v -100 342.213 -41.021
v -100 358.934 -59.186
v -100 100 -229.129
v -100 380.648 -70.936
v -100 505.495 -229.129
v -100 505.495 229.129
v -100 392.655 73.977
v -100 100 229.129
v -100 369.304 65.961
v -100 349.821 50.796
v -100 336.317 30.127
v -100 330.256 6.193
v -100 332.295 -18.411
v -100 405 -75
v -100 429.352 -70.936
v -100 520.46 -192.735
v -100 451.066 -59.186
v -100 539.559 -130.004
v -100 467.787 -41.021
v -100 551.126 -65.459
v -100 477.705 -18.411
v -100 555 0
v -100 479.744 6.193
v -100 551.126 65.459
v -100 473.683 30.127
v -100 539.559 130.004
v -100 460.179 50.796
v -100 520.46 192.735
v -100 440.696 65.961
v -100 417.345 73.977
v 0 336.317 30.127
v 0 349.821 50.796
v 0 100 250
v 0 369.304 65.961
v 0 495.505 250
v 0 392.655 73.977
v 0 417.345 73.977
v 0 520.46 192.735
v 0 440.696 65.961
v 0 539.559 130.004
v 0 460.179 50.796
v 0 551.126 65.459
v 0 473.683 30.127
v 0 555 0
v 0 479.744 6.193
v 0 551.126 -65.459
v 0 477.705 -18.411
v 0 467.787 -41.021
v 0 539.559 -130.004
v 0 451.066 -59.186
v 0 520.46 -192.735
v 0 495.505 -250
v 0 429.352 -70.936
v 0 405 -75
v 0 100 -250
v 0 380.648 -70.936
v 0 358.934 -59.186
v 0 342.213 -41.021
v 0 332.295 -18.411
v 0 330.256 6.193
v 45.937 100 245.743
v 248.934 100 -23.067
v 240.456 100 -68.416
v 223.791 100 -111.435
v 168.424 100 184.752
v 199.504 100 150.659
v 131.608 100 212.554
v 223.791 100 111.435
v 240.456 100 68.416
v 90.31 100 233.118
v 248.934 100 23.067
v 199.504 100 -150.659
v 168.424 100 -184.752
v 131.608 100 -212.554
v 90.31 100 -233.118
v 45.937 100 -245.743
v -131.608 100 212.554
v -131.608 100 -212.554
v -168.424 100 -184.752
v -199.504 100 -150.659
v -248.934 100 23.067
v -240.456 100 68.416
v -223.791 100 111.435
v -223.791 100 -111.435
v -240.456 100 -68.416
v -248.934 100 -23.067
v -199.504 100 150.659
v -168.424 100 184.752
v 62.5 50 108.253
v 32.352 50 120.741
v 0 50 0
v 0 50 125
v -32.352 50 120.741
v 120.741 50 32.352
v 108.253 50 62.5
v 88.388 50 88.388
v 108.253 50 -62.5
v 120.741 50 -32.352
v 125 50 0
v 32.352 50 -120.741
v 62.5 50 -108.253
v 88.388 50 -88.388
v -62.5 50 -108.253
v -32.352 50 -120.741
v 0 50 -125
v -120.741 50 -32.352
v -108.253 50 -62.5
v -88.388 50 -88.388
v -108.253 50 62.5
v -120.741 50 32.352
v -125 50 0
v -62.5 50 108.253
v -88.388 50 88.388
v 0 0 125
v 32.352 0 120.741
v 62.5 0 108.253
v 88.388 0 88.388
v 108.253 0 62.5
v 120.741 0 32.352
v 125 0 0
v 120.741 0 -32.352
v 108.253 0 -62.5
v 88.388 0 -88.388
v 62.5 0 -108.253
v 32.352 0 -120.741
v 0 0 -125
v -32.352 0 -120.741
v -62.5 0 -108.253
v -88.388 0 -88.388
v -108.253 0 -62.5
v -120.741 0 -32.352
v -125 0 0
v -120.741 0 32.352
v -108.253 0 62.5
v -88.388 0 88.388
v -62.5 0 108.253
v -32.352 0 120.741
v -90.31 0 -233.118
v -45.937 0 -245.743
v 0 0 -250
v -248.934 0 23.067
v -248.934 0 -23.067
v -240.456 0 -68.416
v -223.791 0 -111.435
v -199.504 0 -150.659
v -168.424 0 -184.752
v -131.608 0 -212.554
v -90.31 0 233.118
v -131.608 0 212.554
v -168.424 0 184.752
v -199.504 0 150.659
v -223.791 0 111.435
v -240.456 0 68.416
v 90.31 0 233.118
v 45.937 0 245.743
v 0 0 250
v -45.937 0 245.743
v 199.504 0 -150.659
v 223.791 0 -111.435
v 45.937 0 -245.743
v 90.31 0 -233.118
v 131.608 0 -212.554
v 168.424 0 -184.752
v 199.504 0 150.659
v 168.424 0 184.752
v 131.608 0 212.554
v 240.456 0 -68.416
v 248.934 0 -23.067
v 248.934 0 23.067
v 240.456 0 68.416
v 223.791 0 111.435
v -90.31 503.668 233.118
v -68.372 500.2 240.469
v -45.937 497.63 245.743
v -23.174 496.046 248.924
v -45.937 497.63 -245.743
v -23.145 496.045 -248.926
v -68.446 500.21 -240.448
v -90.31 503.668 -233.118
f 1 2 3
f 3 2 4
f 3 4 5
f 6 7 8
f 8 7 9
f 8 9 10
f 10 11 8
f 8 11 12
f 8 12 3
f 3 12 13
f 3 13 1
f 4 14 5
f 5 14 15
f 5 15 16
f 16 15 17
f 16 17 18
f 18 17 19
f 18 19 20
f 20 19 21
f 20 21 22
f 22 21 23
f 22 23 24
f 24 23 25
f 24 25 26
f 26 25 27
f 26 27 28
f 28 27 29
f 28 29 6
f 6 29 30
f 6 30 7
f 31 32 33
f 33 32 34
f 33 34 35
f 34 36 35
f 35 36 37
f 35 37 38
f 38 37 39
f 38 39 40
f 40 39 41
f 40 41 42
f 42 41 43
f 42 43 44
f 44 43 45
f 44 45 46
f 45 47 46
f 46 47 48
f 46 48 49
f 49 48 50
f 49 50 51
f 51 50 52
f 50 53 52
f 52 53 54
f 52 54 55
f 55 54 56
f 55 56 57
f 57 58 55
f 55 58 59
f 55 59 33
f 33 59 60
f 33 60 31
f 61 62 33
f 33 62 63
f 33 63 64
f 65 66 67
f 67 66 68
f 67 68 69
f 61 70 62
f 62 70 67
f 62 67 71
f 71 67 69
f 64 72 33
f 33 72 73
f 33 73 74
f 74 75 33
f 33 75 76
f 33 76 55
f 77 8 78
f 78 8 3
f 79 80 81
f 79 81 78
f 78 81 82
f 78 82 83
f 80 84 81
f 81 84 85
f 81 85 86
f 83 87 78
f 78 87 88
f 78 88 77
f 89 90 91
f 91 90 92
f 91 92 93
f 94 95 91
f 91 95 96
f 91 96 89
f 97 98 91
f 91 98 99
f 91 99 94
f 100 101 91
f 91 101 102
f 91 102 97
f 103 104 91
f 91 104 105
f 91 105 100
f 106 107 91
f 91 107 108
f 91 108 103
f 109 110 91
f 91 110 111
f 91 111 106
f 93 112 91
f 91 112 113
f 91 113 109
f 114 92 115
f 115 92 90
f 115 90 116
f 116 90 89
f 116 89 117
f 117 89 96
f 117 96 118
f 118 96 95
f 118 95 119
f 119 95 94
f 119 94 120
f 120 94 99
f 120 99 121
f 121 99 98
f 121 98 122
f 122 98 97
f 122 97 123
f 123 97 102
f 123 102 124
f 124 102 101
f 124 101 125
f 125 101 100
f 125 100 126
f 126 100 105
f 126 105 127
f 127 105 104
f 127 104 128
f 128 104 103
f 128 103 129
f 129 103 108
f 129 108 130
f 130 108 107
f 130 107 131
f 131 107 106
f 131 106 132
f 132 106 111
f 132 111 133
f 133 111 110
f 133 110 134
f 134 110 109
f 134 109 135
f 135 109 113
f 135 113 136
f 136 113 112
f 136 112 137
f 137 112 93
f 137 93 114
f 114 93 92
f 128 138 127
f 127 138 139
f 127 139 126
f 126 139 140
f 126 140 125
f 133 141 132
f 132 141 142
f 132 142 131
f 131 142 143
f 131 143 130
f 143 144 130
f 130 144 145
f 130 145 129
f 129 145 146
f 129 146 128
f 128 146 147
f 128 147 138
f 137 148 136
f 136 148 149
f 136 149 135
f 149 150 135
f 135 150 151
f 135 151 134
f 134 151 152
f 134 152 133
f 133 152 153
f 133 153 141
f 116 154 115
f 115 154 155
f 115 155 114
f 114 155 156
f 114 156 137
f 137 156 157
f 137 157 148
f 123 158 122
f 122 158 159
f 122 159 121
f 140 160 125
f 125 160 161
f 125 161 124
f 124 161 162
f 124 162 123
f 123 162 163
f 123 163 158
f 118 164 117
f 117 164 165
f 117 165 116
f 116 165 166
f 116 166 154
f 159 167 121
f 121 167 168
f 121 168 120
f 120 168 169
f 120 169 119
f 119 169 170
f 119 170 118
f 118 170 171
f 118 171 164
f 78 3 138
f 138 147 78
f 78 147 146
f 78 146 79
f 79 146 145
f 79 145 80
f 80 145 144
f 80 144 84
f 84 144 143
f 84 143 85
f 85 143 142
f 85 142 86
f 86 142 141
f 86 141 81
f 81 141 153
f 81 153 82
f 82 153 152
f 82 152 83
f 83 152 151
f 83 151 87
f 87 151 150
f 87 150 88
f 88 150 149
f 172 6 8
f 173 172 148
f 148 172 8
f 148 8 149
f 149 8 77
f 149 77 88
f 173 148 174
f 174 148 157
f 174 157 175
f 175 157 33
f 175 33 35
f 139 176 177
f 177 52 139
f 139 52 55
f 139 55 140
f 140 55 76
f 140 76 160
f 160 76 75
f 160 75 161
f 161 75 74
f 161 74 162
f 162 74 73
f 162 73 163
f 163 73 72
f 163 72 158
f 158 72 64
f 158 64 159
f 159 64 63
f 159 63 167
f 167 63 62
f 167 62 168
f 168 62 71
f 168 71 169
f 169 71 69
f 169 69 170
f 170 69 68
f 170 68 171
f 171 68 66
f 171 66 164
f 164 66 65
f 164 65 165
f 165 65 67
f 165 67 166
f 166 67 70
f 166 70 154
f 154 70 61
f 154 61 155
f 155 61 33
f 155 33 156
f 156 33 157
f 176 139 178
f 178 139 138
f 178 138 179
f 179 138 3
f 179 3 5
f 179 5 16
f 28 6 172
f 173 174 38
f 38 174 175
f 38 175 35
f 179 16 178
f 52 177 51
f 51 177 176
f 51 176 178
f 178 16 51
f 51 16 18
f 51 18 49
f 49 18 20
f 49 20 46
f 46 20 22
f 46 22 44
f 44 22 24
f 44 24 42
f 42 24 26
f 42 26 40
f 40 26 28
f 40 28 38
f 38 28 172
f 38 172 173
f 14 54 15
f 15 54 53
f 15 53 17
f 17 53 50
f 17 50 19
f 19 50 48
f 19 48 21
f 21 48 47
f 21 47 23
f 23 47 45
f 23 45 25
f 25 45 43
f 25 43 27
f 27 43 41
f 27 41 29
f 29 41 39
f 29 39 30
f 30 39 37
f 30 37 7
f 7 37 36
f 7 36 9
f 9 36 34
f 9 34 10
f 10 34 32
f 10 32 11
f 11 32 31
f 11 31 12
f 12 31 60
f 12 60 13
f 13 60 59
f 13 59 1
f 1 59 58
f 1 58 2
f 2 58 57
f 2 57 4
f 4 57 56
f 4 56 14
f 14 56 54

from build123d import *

# Parameters (mm, degrees)
BOSS_EXTRUDE1_START = 455
BOSS_EXTRUDE1_DEPTH = 455
SKETCH4_R           = 75
CUT_EXTRUDE1_DEPTH  = 100


with BuildPart() as part:
    # Sketch1 → Revolve1 (revolve)
    with BuildSketch(Plane.XY, mode=Mode.PRIVATE) as revolve1_sk:
        Polygon((0, 50), (125, 50), (125, 0), (250, 0), (250, 100), (0, 100), align=None)
    revolve(revolve1_sk.sketch.rotate(Axis((0, 188.75, 0), (0, -1, 0)), 90), axis=Axis((0, 188.75, 0), (0, -1, 0)))

    # Sketch3 → Boss-Extrude1 (add)
    with BuildSketch(Plane(origin=(0, 100, 0), x_dir=(1, 0, 0), z_dir=(0, 1, 0)).offset(BOSS_EXTRUDE1_START)):
        with BuildLine():
            Line((0, 250), (0, -250))
            ThreePointArc((0, -250), (-51.077410922, -244.726578233), (-100, -229.128784748))
            Line((-100, -229.128784748), (-100, 229.128784748))
            ThreePointArc((-100, 229.128784748), (-51.077410922, 244.726578233), (0, 250))
        make_face()
    extrude(amount=-BOSS_EXTRUDE1_DEPTH)

    # Sketch4 → Cut-Extrude1 (cut)
    with BuildSketch(Plane(origin=(0, 0, 0), x_dir=(0, 0, -1), z_dir=(1, 0, 0))):
        with Locations((0, 405)):
            Circle(SKETCH4_R)
        with BuildLine():
            Line((-250, 555), (-250, 495.504793115))
            ThreePointArc((-250, 495.504793115), (-128.490932522, 539.921364885), (1.363e-06, 555))
            Line((1.363e-06, 555), (-250, 555))
        make_face()
        with BuildLine():
            Line((250, 555), (1.363e-06, 555))
            ThreePointArc((1.363e-06, 555), (128.490933847, 539.92136457), (250, 495.504793115))
            Line((250, 495.504793115), (250, 555))
        make_face()
    extrude(amount=-CUT_EXTRUDE1_DEPTH, mode=Mode.SUBTRACT)


solid = part.part
